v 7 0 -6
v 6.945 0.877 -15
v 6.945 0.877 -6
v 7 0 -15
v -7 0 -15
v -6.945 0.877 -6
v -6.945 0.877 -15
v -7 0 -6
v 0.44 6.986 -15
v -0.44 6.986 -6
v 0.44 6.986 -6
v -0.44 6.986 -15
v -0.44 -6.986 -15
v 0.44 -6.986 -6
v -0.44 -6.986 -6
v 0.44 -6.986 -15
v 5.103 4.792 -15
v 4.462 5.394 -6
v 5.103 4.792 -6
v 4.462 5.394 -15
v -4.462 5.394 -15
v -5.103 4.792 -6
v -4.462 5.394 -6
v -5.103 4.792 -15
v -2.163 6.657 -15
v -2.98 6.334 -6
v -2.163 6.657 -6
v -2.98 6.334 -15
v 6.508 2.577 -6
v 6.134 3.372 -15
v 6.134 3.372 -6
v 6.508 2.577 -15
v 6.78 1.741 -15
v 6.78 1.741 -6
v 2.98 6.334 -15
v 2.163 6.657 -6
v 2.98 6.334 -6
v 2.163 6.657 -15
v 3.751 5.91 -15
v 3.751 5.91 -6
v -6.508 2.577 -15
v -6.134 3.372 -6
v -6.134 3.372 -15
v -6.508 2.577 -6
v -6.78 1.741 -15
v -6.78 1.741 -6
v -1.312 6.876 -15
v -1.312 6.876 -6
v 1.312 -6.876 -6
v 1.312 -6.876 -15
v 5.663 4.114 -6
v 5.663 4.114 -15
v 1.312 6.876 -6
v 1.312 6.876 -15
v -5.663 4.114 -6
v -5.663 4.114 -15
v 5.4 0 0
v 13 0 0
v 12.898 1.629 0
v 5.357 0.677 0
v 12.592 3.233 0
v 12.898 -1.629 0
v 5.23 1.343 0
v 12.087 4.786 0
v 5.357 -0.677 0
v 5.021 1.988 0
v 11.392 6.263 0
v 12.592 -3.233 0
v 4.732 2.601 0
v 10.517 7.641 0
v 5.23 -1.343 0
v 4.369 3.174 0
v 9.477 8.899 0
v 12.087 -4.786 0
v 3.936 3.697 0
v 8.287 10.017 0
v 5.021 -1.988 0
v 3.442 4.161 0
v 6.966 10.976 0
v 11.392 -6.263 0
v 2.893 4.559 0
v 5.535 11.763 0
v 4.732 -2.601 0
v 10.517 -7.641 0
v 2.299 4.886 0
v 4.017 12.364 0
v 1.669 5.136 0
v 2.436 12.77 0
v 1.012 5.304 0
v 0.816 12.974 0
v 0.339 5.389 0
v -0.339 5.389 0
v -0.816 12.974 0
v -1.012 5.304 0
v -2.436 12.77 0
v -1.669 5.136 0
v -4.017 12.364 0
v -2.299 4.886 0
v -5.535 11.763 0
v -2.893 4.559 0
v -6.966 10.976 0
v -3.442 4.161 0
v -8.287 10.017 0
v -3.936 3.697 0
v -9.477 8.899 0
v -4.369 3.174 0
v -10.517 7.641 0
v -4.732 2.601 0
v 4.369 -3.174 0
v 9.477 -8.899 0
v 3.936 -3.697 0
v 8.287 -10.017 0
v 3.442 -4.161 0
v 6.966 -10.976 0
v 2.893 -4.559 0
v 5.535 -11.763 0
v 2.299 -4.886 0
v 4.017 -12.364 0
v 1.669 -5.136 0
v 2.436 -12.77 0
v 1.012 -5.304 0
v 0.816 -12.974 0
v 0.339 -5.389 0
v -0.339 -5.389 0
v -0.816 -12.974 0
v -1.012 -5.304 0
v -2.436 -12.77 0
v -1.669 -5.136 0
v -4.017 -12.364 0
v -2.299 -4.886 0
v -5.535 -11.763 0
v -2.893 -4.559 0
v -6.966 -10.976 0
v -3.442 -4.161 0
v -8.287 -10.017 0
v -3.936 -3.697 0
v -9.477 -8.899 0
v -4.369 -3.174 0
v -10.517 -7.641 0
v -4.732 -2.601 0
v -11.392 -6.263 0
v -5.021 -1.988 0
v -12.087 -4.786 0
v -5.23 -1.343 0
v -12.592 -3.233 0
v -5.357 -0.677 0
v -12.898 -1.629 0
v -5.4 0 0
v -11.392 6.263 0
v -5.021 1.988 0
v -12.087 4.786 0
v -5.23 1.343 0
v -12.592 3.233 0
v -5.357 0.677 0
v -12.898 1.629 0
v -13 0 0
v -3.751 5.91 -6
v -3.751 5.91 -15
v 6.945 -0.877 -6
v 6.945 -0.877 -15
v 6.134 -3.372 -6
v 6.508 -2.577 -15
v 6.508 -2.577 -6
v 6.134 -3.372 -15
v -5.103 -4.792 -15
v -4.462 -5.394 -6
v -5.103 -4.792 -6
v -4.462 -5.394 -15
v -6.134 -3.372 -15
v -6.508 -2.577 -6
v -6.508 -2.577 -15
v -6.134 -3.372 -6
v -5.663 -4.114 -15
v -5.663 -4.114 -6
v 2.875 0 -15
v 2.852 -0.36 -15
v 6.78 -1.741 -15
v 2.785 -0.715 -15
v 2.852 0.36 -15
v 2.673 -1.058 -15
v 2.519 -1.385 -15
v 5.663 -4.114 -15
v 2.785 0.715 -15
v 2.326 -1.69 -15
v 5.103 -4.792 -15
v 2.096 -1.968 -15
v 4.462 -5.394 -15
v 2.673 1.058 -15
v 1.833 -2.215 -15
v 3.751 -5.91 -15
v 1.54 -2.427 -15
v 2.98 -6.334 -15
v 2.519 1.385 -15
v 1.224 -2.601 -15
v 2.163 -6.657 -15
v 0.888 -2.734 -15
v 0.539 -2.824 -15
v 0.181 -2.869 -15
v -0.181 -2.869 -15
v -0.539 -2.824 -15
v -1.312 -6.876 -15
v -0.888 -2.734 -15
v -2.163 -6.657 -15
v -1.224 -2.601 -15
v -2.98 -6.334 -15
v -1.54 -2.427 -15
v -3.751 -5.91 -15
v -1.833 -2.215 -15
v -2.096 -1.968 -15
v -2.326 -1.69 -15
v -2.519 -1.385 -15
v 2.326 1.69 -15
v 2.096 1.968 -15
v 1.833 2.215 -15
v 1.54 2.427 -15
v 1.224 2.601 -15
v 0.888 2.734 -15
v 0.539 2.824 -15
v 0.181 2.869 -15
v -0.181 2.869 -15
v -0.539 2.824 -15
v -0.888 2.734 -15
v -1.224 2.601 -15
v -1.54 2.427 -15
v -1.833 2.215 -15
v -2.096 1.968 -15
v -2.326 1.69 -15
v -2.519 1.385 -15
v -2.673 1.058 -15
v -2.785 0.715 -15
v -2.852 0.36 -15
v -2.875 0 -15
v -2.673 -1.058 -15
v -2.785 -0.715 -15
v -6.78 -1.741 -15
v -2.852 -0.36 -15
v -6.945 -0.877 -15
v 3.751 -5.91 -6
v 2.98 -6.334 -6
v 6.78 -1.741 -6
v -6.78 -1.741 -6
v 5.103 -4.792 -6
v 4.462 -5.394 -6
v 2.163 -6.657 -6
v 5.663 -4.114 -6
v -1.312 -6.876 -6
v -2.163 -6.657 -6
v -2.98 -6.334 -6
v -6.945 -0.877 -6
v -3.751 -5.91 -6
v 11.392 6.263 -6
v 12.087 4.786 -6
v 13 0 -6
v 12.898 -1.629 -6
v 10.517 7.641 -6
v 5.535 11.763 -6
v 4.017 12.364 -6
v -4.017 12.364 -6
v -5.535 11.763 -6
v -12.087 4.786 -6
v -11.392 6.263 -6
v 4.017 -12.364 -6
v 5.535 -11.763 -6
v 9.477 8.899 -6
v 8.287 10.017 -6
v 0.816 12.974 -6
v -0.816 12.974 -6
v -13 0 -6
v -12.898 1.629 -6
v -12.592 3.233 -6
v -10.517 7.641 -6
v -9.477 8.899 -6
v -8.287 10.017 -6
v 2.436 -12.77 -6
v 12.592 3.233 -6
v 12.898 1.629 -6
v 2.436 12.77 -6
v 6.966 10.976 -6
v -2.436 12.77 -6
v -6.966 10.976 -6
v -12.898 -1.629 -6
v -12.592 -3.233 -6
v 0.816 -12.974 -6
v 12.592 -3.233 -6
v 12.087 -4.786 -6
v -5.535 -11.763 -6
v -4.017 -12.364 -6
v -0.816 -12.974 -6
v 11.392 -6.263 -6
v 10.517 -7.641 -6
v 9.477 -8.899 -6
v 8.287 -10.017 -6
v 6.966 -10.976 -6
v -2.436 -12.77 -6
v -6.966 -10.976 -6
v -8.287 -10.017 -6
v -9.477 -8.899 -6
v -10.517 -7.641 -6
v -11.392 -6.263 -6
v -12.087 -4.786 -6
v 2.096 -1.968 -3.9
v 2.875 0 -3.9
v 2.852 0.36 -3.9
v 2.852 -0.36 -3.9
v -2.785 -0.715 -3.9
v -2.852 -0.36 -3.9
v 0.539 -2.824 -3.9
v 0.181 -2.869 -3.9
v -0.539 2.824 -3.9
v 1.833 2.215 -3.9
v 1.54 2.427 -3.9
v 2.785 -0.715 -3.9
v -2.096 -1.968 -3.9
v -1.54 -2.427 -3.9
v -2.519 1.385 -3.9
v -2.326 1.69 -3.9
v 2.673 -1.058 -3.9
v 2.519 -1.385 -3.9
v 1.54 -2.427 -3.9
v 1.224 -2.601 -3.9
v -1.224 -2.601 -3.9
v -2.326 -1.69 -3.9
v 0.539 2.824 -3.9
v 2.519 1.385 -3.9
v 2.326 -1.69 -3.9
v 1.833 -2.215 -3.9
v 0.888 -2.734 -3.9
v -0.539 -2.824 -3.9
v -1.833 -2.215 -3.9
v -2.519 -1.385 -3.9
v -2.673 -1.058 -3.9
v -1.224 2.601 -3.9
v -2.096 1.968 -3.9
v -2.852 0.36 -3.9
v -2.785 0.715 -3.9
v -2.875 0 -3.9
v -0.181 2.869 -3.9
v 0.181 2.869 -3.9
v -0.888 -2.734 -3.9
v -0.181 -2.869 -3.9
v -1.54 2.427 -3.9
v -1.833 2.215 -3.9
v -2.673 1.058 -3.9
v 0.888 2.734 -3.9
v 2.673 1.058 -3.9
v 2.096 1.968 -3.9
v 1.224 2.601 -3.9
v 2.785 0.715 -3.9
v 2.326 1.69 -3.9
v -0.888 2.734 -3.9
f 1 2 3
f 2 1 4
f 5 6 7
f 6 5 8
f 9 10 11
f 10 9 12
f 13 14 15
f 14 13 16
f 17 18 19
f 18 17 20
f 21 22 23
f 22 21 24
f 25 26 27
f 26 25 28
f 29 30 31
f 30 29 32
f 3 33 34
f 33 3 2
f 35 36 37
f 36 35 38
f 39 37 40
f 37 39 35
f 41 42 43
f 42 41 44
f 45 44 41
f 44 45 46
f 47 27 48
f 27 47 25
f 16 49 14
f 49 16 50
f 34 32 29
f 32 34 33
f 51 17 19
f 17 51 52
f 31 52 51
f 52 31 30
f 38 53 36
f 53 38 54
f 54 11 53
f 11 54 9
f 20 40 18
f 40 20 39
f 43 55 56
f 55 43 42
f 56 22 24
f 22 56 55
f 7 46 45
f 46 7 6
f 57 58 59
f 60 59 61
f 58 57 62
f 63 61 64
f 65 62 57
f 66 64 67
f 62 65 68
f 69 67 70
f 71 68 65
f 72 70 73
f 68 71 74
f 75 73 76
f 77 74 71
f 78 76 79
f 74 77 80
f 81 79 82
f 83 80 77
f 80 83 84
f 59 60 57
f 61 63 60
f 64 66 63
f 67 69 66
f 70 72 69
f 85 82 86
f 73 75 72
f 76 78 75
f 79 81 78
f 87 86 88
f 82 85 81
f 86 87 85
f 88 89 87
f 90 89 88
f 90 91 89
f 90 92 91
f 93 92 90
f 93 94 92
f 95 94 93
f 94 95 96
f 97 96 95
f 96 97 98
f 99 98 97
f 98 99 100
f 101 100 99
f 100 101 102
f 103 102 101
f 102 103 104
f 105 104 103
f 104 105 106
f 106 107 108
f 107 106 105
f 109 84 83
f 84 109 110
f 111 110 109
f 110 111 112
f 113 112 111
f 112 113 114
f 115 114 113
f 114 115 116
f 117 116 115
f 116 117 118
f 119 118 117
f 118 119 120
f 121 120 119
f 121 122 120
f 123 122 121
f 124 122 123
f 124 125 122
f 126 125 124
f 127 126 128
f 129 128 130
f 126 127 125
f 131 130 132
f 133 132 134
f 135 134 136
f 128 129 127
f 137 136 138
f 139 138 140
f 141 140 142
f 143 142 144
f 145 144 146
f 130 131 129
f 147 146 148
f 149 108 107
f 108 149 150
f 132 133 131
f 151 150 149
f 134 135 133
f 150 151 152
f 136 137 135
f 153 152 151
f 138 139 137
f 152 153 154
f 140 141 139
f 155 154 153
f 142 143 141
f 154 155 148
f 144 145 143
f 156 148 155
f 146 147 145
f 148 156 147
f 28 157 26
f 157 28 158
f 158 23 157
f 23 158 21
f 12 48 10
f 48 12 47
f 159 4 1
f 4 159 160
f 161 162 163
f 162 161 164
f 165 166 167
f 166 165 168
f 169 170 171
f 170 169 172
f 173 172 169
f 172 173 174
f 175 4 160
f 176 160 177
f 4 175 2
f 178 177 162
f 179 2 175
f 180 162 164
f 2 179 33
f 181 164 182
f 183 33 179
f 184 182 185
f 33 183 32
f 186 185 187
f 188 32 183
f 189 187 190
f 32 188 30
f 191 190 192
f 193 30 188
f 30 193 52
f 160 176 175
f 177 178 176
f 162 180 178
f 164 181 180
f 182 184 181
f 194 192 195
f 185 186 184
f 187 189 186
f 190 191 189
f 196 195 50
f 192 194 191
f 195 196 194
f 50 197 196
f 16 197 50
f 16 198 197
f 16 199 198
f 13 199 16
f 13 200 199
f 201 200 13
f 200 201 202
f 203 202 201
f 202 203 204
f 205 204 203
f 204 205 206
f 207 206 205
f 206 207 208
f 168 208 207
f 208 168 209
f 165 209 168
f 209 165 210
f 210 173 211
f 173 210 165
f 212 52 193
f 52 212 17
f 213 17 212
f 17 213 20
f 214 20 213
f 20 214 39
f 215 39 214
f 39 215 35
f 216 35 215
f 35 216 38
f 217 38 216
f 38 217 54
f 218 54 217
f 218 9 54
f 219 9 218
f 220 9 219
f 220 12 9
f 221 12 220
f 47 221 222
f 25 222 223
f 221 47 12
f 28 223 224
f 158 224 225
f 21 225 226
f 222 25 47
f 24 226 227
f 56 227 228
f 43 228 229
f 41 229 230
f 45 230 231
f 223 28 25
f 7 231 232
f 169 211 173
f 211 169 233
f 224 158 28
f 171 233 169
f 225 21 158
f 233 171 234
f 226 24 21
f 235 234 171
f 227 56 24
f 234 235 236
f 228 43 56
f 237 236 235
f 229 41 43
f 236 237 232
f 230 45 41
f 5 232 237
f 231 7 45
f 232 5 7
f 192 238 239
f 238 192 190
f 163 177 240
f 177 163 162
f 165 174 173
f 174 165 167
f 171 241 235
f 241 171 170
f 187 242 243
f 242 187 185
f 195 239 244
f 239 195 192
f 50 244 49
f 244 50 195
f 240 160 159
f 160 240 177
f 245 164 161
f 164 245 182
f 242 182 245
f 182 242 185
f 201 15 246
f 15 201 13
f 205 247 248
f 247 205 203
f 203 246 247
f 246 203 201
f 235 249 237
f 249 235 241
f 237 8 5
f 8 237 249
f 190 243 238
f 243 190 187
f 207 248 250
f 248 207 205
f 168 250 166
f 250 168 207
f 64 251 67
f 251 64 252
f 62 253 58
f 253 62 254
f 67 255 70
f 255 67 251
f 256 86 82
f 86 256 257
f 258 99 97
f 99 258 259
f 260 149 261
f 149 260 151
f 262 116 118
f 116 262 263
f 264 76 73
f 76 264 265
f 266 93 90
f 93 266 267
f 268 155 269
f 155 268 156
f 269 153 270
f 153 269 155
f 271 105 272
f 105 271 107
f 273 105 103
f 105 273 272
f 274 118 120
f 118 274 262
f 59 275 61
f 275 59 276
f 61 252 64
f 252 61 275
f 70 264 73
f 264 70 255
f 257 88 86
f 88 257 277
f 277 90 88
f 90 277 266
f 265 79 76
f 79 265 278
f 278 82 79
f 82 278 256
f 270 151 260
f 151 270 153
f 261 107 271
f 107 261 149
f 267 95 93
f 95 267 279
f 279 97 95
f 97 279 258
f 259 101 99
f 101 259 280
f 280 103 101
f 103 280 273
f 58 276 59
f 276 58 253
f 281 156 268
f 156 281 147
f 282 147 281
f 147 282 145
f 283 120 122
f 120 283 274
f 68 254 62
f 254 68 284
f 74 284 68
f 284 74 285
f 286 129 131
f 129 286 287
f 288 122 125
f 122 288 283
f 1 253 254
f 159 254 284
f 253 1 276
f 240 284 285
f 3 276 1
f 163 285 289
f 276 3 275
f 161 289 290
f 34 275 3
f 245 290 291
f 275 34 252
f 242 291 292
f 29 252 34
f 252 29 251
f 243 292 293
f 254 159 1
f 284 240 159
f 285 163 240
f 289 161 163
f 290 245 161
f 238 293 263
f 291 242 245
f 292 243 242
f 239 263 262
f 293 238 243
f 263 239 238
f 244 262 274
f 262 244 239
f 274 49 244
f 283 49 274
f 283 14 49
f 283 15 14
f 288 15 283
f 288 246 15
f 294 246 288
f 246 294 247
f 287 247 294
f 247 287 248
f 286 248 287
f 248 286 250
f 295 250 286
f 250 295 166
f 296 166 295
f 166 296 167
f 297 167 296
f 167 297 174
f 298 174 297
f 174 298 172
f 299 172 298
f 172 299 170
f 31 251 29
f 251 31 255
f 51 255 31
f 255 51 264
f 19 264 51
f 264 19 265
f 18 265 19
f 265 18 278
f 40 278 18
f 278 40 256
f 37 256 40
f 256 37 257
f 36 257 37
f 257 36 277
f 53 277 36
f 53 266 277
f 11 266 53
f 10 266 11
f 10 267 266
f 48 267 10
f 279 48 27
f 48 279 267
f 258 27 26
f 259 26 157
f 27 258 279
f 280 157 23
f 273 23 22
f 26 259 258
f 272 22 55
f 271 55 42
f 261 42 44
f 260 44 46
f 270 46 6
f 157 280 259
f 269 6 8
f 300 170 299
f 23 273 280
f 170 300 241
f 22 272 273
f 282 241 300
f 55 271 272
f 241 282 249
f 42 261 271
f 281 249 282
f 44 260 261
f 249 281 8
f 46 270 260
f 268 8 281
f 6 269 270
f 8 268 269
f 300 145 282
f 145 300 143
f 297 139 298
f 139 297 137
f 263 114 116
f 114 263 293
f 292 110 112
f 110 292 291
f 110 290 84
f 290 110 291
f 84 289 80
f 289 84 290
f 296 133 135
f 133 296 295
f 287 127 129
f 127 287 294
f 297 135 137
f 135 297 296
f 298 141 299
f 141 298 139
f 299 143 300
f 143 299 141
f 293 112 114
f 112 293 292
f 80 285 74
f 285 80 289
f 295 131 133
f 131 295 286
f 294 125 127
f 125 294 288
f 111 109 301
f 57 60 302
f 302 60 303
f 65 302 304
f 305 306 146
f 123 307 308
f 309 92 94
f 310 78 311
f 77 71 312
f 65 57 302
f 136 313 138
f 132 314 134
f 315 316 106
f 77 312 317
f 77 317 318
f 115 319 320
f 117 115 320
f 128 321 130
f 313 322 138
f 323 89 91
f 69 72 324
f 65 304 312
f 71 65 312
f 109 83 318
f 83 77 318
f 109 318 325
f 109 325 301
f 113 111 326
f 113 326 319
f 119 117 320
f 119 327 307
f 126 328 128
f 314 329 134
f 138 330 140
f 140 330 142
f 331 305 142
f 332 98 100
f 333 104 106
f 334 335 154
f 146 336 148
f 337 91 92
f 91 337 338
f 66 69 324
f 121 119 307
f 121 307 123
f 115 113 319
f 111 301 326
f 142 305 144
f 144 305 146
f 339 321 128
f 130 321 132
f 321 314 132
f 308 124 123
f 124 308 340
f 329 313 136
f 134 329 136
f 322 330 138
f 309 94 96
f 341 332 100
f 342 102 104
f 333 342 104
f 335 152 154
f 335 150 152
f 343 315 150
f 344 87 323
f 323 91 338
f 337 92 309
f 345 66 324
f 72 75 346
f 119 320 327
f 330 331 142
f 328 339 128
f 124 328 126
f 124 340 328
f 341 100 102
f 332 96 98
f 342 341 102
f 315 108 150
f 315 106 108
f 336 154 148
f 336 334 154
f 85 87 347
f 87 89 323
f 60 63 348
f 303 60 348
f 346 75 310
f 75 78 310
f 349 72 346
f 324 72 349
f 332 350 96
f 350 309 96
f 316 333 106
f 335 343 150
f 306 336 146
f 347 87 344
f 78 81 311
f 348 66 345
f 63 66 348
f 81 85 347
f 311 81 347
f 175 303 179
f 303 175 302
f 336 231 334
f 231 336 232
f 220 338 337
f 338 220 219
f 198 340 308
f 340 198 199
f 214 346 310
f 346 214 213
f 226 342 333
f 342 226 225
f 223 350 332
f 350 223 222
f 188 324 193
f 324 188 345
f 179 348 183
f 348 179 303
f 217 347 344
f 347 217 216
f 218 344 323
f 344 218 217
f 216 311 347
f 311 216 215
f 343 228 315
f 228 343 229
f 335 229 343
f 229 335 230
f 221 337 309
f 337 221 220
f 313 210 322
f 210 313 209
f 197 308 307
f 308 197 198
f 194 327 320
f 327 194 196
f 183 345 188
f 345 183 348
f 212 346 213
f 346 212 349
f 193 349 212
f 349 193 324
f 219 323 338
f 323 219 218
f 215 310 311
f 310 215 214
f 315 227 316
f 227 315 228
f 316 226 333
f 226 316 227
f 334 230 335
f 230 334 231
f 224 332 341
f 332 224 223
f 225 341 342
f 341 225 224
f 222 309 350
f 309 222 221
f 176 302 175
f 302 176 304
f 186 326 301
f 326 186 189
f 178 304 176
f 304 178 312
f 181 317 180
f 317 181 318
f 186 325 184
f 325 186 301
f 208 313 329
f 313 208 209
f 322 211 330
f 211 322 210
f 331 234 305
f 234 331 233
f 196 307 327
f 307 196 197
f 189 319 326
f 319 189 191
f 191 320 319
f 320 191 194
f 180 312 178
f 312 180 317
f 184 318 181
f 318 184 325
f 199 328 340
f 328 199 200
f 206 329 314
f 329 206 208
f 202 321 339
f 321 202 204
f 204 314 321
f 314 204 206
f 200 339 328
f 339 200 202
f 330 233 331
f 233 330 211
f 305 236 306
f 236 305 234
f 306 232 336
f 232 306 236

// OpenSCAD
$fn = 50;


difference() {
	union() {
		translate(v = [0, 0, -15.0000000000]) {
			cylinder(h = 15, r = 7.0000000000);
		}
		translate(v = [0, 0, -6.0000000000]) {
			cylinder(h = 6, r = 13.0000000000);
		}
	}
	union() {
		translate(v = [0, 0, 0]) {
			rotate(a = [0, 0, 0]) {
				difference() {
					union() {
						#translate(v = [0, 0, -15.0000000000]) {
							cylinder(h = 15, r = 2.6000000000);
						}
						#translate(v = [0, 0, -3.9000000000]) {
							cylinder(h = 3.9000000000, r = 7.0000000000, r1 = 2.8750000000, r2 = 5.4000000000);
						}
						#translate(v = [0, 0, -15.0000000000]) {
							cylinder(h = 15, r = 2.8750000000);
						}
						#translate(v = [0, 0, -15.0000000000]) {
							cylinder(h = 15, r = 2.6000000000);
						}
					}
					union();
				}
			}
		}
	}
}
